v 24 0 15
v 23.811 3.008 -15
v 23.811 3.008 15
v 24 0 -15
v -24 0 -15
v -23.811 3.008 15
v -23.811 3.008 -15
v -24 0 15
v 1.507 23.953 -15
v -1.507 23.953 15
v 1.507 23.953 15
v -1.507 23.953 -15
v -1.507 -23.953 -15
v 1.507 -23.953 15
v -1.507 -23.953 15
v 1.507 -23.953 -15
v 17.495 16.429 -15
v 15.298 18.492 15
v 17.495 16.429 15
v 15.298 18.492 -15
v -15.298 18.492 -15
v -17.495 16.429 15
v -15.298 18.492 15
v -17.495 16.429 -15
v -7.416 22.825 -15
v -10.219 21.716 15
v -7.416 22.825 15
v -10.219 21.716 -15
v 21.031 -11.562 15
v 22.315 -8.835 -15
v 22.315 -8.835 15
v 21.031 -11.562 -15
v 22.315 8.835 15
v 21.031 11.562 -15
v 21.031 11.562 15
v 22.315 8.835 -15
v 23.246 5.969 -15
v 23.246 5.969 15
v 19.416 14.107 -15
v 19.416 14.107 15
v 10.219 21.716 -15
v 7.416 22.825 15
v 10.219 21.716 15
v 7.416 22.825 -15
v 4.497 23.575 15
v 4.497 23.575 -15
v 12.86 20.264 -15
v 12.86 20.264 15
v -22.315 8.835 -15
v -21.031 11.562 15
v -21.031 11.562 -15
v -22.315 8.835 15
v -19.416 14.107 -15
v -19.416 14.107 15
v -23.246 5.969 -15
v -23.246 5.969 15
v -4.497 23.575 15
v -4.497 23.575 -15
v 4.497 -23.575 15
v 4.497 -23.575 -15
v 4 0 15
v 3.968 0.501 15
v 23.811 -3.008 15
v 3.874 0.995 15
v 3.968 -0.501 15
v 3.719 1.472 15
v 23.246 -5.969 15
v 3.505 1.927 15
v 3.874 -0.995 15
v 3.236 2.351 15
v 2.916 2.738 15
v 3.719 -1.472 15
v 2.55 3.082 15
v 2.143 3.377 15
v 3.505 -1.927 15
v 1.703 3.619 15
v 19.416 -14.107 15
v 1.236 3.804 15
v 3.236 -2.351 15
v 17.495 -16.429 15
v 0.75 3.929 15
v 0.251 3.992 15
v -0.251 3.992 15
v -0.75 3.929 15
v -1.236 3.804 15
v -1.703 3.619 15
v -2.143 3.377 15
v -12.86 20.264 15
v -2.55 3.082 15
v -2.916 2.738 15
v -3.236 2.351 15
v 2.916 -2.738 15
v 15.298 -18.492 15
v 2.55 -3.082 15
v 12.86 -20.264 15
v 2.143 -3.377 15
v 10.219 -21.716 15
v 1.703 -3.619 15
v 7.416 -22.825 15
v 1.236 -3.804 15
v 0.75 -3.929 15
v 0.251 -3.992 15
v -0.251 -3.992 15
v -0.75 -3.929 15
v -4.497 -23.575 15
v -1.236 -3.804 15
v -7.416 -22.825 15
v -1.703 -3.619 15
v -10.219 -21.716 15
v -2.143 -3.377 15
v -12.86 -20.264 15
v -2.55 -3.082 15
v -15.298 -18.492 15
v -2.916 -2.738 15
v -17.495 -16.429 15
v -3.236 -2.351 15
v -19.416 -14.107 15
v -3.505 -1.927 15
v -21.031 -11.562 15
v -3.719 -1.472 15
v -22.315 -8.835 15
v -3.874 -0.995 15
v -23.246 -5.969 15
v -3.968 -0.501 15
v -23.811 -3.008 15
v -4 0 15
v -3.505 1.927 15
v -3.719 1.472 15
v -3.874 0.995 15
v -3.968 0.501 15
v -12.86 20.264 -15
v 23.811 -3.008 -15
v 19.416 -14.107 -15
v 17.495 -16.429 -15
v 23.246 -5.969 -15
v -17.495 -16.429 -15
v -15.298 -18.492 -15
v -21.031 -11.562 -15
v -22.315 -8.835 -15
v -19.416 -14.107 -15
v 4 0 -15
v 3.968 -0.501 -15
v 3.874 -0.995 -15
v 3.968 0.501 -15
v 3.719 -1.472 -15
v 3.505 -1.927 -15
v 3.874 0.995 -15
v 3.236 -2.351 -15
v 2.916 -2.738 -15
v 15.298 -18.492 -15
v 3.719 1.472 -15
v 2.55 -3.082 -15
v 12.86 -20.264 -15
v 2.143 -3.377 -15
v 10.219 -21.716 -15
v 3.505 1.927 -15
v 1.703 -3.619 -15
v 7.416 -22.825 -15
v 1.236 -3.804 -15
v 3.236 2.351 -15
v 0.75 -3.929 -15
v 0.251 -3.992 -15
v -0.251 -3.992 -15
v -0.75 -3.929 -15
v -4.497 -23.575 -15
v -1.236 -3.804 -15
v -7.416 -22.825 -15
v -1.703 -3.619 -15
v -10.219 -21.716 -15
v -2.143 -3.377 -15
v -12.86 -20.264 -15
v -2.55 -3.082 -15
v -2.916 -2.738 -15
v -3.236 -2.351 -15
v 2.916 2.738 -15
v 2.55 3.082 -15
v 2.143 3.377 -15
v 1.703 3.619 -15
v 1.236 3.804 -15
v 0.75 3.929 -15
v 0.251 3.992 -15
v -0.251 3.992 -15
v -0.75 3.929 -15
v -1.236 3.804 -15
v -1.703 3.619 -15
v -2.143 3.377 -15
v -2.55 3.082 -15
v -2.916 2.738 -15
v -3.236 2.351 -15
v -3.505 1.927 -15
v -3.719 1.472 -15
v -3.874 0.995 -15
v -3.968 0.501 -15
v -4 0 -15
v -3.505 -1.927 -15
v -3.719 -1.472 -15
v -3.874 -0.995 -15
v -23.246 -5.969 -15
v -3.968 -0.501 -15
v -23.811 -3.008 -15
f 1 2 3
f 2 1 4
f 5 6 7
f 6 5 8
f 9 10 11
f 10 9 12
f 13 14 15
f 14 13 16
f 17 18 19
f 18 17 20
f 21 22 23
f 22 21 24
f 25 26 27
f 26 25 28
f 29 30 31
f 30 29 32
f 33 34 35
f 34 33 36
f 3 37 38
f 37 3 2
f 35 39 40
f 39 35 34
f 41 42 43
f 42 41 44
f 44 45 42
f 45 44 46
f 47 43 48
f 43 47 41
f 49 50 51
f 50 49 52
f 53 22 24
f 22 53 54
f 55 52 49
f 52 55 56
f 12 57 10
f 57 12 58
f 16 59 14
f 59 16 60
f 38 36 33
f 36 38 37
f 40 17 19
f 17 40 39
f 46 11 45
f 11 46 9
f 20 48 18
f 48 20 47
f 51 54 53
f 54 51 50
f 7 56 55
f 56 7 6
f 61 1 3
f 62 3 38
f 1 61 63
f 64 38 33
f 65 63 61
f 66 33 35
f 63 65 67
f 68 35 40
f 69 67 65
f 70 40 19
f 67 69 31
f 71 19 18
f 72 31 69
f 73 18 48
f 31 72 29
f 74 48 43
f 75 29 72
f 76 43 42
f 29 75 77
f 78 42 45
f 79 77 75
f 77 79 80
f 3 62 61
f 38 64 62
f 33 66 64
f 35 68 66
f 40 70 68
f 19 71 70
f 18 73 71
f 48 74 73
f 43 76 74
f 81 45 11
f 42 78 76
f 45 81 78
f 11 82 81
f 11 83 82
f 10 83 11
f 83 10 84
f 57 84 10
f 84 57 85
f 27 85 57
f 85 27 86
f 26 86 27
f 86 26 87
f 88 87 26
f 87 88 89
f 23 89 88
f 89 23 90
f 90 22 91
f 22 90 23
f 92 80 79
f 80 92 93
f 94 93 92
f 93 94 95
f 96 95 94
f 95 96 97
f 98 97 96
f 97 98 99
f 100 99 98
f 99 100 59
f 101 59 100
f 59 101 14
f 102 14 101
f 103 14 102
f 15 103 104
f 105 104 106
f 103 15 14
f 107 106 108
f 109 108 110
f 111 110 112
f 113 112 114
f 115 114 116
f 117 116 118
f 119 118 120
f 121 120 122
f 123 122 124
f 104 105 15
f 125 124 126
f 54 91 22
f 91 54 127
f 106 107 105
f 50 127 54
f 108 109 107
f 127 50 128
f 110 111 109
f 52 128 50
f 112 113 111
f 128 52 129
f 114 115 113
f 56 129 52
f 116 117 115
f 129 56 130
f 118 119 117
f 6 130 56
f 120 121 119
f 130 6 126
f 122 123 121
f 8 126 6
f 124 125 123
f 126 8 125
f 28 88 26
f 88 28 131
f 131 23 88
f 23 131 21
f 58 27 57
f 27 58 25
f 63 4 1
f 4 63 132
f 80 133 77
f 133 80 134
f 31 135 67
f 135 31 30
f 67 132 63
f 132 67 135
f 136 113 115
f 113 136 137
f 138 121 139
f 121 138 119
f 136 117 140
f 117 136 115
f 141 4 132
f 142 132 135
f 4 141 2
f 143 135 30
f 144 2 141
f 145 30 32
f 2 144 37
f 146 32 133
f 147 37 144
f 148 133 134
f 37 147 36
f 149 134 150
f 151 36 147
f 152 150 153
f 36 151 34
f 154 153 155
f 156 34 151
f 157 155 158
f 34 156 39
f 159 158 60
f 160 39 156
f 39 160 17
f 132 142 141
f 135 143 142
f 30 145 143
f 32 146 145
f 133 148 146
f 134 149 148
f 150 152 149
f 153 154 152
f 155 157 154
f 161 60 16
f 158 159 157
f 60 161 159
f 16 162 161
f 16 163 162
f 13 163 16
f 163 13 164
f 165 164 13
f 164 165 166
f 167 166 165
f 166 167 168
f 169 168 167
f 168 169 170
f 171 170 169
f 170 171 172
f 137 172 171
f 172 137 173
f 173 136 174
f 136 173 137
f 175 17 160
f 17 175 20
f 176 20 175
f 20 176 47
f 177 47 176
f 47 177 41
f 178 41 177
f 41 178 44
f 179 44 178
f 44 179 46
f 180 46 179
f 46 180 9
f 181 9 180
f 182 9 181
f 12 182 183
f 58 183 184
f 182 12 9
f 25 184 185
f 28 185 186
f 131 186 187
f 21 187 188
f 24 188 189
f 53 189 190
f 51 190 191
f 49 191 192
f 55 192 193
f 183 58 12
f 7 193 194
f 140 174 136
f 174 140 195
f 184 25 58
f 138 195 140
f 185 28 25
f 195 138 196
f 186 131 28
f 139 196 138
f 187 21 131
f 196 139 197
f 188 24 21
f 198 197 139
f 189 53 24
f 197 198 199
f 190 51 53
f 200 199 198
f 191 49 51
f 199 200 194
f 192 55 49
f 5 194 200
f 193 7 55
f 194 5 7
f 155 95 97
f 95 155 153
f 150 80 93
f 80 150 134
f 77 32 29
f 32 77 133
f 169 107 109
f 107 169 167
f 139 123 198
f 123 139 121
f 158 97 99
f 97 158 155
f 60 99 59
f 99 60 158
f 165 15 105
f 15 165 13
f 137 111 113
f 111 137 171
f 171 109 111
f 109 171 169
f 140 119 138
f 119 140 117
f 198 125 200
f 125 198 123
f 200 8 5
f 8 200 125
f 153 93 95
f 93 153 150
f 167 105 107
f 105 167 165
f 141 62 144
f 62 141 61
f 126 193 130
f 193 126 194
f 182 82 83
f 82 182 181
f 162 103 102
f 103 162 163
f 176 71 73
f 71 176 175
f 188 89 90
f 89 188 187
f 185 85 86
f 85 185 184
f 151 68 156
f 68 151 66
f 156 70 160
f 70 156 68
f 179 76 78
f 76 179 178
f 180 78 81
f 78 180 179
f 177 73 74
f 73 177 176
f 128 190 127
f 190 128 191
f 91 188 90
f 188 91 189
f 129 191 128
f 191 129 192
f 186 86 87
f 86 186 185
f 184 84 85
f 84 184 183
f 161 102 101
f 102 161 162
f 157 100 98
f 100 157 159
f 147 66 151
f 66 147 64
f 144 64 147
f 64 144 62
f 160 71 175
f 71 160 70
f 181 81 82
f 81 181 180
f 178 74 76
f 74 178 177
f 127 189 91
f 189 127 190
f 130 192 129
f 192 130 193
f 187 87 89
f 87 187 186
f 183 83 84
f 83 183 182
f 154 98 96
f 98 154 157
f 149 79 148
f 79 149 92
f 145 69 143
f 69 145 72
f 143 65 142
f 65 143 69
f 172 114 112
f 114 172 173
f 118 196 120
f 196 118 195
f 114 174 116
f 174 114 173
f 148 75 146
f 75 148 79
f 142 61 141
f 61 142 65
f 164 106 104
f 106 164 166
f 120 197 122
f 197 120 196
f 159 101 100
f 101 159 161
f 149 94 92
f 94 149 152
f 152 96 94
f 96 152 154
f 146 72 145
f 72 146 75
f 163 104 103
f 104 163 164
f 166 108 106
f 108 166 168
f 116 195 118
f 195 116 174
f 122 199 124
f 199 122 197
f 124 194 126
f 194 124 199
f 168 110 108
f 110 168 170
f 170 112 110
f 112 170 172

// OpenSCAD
$fn = 50;


difference() {
	union() {
		translate(v = [0, 0, -15.0000000000]) {
			cylinder(h = 30, r = 24.0000000000);
		}
	}
	union() {
		translate(v = [0, 0, -100.0000000000]) {
			cylinder(h = 200, r = 4.0000000000);
		}
	}
}
